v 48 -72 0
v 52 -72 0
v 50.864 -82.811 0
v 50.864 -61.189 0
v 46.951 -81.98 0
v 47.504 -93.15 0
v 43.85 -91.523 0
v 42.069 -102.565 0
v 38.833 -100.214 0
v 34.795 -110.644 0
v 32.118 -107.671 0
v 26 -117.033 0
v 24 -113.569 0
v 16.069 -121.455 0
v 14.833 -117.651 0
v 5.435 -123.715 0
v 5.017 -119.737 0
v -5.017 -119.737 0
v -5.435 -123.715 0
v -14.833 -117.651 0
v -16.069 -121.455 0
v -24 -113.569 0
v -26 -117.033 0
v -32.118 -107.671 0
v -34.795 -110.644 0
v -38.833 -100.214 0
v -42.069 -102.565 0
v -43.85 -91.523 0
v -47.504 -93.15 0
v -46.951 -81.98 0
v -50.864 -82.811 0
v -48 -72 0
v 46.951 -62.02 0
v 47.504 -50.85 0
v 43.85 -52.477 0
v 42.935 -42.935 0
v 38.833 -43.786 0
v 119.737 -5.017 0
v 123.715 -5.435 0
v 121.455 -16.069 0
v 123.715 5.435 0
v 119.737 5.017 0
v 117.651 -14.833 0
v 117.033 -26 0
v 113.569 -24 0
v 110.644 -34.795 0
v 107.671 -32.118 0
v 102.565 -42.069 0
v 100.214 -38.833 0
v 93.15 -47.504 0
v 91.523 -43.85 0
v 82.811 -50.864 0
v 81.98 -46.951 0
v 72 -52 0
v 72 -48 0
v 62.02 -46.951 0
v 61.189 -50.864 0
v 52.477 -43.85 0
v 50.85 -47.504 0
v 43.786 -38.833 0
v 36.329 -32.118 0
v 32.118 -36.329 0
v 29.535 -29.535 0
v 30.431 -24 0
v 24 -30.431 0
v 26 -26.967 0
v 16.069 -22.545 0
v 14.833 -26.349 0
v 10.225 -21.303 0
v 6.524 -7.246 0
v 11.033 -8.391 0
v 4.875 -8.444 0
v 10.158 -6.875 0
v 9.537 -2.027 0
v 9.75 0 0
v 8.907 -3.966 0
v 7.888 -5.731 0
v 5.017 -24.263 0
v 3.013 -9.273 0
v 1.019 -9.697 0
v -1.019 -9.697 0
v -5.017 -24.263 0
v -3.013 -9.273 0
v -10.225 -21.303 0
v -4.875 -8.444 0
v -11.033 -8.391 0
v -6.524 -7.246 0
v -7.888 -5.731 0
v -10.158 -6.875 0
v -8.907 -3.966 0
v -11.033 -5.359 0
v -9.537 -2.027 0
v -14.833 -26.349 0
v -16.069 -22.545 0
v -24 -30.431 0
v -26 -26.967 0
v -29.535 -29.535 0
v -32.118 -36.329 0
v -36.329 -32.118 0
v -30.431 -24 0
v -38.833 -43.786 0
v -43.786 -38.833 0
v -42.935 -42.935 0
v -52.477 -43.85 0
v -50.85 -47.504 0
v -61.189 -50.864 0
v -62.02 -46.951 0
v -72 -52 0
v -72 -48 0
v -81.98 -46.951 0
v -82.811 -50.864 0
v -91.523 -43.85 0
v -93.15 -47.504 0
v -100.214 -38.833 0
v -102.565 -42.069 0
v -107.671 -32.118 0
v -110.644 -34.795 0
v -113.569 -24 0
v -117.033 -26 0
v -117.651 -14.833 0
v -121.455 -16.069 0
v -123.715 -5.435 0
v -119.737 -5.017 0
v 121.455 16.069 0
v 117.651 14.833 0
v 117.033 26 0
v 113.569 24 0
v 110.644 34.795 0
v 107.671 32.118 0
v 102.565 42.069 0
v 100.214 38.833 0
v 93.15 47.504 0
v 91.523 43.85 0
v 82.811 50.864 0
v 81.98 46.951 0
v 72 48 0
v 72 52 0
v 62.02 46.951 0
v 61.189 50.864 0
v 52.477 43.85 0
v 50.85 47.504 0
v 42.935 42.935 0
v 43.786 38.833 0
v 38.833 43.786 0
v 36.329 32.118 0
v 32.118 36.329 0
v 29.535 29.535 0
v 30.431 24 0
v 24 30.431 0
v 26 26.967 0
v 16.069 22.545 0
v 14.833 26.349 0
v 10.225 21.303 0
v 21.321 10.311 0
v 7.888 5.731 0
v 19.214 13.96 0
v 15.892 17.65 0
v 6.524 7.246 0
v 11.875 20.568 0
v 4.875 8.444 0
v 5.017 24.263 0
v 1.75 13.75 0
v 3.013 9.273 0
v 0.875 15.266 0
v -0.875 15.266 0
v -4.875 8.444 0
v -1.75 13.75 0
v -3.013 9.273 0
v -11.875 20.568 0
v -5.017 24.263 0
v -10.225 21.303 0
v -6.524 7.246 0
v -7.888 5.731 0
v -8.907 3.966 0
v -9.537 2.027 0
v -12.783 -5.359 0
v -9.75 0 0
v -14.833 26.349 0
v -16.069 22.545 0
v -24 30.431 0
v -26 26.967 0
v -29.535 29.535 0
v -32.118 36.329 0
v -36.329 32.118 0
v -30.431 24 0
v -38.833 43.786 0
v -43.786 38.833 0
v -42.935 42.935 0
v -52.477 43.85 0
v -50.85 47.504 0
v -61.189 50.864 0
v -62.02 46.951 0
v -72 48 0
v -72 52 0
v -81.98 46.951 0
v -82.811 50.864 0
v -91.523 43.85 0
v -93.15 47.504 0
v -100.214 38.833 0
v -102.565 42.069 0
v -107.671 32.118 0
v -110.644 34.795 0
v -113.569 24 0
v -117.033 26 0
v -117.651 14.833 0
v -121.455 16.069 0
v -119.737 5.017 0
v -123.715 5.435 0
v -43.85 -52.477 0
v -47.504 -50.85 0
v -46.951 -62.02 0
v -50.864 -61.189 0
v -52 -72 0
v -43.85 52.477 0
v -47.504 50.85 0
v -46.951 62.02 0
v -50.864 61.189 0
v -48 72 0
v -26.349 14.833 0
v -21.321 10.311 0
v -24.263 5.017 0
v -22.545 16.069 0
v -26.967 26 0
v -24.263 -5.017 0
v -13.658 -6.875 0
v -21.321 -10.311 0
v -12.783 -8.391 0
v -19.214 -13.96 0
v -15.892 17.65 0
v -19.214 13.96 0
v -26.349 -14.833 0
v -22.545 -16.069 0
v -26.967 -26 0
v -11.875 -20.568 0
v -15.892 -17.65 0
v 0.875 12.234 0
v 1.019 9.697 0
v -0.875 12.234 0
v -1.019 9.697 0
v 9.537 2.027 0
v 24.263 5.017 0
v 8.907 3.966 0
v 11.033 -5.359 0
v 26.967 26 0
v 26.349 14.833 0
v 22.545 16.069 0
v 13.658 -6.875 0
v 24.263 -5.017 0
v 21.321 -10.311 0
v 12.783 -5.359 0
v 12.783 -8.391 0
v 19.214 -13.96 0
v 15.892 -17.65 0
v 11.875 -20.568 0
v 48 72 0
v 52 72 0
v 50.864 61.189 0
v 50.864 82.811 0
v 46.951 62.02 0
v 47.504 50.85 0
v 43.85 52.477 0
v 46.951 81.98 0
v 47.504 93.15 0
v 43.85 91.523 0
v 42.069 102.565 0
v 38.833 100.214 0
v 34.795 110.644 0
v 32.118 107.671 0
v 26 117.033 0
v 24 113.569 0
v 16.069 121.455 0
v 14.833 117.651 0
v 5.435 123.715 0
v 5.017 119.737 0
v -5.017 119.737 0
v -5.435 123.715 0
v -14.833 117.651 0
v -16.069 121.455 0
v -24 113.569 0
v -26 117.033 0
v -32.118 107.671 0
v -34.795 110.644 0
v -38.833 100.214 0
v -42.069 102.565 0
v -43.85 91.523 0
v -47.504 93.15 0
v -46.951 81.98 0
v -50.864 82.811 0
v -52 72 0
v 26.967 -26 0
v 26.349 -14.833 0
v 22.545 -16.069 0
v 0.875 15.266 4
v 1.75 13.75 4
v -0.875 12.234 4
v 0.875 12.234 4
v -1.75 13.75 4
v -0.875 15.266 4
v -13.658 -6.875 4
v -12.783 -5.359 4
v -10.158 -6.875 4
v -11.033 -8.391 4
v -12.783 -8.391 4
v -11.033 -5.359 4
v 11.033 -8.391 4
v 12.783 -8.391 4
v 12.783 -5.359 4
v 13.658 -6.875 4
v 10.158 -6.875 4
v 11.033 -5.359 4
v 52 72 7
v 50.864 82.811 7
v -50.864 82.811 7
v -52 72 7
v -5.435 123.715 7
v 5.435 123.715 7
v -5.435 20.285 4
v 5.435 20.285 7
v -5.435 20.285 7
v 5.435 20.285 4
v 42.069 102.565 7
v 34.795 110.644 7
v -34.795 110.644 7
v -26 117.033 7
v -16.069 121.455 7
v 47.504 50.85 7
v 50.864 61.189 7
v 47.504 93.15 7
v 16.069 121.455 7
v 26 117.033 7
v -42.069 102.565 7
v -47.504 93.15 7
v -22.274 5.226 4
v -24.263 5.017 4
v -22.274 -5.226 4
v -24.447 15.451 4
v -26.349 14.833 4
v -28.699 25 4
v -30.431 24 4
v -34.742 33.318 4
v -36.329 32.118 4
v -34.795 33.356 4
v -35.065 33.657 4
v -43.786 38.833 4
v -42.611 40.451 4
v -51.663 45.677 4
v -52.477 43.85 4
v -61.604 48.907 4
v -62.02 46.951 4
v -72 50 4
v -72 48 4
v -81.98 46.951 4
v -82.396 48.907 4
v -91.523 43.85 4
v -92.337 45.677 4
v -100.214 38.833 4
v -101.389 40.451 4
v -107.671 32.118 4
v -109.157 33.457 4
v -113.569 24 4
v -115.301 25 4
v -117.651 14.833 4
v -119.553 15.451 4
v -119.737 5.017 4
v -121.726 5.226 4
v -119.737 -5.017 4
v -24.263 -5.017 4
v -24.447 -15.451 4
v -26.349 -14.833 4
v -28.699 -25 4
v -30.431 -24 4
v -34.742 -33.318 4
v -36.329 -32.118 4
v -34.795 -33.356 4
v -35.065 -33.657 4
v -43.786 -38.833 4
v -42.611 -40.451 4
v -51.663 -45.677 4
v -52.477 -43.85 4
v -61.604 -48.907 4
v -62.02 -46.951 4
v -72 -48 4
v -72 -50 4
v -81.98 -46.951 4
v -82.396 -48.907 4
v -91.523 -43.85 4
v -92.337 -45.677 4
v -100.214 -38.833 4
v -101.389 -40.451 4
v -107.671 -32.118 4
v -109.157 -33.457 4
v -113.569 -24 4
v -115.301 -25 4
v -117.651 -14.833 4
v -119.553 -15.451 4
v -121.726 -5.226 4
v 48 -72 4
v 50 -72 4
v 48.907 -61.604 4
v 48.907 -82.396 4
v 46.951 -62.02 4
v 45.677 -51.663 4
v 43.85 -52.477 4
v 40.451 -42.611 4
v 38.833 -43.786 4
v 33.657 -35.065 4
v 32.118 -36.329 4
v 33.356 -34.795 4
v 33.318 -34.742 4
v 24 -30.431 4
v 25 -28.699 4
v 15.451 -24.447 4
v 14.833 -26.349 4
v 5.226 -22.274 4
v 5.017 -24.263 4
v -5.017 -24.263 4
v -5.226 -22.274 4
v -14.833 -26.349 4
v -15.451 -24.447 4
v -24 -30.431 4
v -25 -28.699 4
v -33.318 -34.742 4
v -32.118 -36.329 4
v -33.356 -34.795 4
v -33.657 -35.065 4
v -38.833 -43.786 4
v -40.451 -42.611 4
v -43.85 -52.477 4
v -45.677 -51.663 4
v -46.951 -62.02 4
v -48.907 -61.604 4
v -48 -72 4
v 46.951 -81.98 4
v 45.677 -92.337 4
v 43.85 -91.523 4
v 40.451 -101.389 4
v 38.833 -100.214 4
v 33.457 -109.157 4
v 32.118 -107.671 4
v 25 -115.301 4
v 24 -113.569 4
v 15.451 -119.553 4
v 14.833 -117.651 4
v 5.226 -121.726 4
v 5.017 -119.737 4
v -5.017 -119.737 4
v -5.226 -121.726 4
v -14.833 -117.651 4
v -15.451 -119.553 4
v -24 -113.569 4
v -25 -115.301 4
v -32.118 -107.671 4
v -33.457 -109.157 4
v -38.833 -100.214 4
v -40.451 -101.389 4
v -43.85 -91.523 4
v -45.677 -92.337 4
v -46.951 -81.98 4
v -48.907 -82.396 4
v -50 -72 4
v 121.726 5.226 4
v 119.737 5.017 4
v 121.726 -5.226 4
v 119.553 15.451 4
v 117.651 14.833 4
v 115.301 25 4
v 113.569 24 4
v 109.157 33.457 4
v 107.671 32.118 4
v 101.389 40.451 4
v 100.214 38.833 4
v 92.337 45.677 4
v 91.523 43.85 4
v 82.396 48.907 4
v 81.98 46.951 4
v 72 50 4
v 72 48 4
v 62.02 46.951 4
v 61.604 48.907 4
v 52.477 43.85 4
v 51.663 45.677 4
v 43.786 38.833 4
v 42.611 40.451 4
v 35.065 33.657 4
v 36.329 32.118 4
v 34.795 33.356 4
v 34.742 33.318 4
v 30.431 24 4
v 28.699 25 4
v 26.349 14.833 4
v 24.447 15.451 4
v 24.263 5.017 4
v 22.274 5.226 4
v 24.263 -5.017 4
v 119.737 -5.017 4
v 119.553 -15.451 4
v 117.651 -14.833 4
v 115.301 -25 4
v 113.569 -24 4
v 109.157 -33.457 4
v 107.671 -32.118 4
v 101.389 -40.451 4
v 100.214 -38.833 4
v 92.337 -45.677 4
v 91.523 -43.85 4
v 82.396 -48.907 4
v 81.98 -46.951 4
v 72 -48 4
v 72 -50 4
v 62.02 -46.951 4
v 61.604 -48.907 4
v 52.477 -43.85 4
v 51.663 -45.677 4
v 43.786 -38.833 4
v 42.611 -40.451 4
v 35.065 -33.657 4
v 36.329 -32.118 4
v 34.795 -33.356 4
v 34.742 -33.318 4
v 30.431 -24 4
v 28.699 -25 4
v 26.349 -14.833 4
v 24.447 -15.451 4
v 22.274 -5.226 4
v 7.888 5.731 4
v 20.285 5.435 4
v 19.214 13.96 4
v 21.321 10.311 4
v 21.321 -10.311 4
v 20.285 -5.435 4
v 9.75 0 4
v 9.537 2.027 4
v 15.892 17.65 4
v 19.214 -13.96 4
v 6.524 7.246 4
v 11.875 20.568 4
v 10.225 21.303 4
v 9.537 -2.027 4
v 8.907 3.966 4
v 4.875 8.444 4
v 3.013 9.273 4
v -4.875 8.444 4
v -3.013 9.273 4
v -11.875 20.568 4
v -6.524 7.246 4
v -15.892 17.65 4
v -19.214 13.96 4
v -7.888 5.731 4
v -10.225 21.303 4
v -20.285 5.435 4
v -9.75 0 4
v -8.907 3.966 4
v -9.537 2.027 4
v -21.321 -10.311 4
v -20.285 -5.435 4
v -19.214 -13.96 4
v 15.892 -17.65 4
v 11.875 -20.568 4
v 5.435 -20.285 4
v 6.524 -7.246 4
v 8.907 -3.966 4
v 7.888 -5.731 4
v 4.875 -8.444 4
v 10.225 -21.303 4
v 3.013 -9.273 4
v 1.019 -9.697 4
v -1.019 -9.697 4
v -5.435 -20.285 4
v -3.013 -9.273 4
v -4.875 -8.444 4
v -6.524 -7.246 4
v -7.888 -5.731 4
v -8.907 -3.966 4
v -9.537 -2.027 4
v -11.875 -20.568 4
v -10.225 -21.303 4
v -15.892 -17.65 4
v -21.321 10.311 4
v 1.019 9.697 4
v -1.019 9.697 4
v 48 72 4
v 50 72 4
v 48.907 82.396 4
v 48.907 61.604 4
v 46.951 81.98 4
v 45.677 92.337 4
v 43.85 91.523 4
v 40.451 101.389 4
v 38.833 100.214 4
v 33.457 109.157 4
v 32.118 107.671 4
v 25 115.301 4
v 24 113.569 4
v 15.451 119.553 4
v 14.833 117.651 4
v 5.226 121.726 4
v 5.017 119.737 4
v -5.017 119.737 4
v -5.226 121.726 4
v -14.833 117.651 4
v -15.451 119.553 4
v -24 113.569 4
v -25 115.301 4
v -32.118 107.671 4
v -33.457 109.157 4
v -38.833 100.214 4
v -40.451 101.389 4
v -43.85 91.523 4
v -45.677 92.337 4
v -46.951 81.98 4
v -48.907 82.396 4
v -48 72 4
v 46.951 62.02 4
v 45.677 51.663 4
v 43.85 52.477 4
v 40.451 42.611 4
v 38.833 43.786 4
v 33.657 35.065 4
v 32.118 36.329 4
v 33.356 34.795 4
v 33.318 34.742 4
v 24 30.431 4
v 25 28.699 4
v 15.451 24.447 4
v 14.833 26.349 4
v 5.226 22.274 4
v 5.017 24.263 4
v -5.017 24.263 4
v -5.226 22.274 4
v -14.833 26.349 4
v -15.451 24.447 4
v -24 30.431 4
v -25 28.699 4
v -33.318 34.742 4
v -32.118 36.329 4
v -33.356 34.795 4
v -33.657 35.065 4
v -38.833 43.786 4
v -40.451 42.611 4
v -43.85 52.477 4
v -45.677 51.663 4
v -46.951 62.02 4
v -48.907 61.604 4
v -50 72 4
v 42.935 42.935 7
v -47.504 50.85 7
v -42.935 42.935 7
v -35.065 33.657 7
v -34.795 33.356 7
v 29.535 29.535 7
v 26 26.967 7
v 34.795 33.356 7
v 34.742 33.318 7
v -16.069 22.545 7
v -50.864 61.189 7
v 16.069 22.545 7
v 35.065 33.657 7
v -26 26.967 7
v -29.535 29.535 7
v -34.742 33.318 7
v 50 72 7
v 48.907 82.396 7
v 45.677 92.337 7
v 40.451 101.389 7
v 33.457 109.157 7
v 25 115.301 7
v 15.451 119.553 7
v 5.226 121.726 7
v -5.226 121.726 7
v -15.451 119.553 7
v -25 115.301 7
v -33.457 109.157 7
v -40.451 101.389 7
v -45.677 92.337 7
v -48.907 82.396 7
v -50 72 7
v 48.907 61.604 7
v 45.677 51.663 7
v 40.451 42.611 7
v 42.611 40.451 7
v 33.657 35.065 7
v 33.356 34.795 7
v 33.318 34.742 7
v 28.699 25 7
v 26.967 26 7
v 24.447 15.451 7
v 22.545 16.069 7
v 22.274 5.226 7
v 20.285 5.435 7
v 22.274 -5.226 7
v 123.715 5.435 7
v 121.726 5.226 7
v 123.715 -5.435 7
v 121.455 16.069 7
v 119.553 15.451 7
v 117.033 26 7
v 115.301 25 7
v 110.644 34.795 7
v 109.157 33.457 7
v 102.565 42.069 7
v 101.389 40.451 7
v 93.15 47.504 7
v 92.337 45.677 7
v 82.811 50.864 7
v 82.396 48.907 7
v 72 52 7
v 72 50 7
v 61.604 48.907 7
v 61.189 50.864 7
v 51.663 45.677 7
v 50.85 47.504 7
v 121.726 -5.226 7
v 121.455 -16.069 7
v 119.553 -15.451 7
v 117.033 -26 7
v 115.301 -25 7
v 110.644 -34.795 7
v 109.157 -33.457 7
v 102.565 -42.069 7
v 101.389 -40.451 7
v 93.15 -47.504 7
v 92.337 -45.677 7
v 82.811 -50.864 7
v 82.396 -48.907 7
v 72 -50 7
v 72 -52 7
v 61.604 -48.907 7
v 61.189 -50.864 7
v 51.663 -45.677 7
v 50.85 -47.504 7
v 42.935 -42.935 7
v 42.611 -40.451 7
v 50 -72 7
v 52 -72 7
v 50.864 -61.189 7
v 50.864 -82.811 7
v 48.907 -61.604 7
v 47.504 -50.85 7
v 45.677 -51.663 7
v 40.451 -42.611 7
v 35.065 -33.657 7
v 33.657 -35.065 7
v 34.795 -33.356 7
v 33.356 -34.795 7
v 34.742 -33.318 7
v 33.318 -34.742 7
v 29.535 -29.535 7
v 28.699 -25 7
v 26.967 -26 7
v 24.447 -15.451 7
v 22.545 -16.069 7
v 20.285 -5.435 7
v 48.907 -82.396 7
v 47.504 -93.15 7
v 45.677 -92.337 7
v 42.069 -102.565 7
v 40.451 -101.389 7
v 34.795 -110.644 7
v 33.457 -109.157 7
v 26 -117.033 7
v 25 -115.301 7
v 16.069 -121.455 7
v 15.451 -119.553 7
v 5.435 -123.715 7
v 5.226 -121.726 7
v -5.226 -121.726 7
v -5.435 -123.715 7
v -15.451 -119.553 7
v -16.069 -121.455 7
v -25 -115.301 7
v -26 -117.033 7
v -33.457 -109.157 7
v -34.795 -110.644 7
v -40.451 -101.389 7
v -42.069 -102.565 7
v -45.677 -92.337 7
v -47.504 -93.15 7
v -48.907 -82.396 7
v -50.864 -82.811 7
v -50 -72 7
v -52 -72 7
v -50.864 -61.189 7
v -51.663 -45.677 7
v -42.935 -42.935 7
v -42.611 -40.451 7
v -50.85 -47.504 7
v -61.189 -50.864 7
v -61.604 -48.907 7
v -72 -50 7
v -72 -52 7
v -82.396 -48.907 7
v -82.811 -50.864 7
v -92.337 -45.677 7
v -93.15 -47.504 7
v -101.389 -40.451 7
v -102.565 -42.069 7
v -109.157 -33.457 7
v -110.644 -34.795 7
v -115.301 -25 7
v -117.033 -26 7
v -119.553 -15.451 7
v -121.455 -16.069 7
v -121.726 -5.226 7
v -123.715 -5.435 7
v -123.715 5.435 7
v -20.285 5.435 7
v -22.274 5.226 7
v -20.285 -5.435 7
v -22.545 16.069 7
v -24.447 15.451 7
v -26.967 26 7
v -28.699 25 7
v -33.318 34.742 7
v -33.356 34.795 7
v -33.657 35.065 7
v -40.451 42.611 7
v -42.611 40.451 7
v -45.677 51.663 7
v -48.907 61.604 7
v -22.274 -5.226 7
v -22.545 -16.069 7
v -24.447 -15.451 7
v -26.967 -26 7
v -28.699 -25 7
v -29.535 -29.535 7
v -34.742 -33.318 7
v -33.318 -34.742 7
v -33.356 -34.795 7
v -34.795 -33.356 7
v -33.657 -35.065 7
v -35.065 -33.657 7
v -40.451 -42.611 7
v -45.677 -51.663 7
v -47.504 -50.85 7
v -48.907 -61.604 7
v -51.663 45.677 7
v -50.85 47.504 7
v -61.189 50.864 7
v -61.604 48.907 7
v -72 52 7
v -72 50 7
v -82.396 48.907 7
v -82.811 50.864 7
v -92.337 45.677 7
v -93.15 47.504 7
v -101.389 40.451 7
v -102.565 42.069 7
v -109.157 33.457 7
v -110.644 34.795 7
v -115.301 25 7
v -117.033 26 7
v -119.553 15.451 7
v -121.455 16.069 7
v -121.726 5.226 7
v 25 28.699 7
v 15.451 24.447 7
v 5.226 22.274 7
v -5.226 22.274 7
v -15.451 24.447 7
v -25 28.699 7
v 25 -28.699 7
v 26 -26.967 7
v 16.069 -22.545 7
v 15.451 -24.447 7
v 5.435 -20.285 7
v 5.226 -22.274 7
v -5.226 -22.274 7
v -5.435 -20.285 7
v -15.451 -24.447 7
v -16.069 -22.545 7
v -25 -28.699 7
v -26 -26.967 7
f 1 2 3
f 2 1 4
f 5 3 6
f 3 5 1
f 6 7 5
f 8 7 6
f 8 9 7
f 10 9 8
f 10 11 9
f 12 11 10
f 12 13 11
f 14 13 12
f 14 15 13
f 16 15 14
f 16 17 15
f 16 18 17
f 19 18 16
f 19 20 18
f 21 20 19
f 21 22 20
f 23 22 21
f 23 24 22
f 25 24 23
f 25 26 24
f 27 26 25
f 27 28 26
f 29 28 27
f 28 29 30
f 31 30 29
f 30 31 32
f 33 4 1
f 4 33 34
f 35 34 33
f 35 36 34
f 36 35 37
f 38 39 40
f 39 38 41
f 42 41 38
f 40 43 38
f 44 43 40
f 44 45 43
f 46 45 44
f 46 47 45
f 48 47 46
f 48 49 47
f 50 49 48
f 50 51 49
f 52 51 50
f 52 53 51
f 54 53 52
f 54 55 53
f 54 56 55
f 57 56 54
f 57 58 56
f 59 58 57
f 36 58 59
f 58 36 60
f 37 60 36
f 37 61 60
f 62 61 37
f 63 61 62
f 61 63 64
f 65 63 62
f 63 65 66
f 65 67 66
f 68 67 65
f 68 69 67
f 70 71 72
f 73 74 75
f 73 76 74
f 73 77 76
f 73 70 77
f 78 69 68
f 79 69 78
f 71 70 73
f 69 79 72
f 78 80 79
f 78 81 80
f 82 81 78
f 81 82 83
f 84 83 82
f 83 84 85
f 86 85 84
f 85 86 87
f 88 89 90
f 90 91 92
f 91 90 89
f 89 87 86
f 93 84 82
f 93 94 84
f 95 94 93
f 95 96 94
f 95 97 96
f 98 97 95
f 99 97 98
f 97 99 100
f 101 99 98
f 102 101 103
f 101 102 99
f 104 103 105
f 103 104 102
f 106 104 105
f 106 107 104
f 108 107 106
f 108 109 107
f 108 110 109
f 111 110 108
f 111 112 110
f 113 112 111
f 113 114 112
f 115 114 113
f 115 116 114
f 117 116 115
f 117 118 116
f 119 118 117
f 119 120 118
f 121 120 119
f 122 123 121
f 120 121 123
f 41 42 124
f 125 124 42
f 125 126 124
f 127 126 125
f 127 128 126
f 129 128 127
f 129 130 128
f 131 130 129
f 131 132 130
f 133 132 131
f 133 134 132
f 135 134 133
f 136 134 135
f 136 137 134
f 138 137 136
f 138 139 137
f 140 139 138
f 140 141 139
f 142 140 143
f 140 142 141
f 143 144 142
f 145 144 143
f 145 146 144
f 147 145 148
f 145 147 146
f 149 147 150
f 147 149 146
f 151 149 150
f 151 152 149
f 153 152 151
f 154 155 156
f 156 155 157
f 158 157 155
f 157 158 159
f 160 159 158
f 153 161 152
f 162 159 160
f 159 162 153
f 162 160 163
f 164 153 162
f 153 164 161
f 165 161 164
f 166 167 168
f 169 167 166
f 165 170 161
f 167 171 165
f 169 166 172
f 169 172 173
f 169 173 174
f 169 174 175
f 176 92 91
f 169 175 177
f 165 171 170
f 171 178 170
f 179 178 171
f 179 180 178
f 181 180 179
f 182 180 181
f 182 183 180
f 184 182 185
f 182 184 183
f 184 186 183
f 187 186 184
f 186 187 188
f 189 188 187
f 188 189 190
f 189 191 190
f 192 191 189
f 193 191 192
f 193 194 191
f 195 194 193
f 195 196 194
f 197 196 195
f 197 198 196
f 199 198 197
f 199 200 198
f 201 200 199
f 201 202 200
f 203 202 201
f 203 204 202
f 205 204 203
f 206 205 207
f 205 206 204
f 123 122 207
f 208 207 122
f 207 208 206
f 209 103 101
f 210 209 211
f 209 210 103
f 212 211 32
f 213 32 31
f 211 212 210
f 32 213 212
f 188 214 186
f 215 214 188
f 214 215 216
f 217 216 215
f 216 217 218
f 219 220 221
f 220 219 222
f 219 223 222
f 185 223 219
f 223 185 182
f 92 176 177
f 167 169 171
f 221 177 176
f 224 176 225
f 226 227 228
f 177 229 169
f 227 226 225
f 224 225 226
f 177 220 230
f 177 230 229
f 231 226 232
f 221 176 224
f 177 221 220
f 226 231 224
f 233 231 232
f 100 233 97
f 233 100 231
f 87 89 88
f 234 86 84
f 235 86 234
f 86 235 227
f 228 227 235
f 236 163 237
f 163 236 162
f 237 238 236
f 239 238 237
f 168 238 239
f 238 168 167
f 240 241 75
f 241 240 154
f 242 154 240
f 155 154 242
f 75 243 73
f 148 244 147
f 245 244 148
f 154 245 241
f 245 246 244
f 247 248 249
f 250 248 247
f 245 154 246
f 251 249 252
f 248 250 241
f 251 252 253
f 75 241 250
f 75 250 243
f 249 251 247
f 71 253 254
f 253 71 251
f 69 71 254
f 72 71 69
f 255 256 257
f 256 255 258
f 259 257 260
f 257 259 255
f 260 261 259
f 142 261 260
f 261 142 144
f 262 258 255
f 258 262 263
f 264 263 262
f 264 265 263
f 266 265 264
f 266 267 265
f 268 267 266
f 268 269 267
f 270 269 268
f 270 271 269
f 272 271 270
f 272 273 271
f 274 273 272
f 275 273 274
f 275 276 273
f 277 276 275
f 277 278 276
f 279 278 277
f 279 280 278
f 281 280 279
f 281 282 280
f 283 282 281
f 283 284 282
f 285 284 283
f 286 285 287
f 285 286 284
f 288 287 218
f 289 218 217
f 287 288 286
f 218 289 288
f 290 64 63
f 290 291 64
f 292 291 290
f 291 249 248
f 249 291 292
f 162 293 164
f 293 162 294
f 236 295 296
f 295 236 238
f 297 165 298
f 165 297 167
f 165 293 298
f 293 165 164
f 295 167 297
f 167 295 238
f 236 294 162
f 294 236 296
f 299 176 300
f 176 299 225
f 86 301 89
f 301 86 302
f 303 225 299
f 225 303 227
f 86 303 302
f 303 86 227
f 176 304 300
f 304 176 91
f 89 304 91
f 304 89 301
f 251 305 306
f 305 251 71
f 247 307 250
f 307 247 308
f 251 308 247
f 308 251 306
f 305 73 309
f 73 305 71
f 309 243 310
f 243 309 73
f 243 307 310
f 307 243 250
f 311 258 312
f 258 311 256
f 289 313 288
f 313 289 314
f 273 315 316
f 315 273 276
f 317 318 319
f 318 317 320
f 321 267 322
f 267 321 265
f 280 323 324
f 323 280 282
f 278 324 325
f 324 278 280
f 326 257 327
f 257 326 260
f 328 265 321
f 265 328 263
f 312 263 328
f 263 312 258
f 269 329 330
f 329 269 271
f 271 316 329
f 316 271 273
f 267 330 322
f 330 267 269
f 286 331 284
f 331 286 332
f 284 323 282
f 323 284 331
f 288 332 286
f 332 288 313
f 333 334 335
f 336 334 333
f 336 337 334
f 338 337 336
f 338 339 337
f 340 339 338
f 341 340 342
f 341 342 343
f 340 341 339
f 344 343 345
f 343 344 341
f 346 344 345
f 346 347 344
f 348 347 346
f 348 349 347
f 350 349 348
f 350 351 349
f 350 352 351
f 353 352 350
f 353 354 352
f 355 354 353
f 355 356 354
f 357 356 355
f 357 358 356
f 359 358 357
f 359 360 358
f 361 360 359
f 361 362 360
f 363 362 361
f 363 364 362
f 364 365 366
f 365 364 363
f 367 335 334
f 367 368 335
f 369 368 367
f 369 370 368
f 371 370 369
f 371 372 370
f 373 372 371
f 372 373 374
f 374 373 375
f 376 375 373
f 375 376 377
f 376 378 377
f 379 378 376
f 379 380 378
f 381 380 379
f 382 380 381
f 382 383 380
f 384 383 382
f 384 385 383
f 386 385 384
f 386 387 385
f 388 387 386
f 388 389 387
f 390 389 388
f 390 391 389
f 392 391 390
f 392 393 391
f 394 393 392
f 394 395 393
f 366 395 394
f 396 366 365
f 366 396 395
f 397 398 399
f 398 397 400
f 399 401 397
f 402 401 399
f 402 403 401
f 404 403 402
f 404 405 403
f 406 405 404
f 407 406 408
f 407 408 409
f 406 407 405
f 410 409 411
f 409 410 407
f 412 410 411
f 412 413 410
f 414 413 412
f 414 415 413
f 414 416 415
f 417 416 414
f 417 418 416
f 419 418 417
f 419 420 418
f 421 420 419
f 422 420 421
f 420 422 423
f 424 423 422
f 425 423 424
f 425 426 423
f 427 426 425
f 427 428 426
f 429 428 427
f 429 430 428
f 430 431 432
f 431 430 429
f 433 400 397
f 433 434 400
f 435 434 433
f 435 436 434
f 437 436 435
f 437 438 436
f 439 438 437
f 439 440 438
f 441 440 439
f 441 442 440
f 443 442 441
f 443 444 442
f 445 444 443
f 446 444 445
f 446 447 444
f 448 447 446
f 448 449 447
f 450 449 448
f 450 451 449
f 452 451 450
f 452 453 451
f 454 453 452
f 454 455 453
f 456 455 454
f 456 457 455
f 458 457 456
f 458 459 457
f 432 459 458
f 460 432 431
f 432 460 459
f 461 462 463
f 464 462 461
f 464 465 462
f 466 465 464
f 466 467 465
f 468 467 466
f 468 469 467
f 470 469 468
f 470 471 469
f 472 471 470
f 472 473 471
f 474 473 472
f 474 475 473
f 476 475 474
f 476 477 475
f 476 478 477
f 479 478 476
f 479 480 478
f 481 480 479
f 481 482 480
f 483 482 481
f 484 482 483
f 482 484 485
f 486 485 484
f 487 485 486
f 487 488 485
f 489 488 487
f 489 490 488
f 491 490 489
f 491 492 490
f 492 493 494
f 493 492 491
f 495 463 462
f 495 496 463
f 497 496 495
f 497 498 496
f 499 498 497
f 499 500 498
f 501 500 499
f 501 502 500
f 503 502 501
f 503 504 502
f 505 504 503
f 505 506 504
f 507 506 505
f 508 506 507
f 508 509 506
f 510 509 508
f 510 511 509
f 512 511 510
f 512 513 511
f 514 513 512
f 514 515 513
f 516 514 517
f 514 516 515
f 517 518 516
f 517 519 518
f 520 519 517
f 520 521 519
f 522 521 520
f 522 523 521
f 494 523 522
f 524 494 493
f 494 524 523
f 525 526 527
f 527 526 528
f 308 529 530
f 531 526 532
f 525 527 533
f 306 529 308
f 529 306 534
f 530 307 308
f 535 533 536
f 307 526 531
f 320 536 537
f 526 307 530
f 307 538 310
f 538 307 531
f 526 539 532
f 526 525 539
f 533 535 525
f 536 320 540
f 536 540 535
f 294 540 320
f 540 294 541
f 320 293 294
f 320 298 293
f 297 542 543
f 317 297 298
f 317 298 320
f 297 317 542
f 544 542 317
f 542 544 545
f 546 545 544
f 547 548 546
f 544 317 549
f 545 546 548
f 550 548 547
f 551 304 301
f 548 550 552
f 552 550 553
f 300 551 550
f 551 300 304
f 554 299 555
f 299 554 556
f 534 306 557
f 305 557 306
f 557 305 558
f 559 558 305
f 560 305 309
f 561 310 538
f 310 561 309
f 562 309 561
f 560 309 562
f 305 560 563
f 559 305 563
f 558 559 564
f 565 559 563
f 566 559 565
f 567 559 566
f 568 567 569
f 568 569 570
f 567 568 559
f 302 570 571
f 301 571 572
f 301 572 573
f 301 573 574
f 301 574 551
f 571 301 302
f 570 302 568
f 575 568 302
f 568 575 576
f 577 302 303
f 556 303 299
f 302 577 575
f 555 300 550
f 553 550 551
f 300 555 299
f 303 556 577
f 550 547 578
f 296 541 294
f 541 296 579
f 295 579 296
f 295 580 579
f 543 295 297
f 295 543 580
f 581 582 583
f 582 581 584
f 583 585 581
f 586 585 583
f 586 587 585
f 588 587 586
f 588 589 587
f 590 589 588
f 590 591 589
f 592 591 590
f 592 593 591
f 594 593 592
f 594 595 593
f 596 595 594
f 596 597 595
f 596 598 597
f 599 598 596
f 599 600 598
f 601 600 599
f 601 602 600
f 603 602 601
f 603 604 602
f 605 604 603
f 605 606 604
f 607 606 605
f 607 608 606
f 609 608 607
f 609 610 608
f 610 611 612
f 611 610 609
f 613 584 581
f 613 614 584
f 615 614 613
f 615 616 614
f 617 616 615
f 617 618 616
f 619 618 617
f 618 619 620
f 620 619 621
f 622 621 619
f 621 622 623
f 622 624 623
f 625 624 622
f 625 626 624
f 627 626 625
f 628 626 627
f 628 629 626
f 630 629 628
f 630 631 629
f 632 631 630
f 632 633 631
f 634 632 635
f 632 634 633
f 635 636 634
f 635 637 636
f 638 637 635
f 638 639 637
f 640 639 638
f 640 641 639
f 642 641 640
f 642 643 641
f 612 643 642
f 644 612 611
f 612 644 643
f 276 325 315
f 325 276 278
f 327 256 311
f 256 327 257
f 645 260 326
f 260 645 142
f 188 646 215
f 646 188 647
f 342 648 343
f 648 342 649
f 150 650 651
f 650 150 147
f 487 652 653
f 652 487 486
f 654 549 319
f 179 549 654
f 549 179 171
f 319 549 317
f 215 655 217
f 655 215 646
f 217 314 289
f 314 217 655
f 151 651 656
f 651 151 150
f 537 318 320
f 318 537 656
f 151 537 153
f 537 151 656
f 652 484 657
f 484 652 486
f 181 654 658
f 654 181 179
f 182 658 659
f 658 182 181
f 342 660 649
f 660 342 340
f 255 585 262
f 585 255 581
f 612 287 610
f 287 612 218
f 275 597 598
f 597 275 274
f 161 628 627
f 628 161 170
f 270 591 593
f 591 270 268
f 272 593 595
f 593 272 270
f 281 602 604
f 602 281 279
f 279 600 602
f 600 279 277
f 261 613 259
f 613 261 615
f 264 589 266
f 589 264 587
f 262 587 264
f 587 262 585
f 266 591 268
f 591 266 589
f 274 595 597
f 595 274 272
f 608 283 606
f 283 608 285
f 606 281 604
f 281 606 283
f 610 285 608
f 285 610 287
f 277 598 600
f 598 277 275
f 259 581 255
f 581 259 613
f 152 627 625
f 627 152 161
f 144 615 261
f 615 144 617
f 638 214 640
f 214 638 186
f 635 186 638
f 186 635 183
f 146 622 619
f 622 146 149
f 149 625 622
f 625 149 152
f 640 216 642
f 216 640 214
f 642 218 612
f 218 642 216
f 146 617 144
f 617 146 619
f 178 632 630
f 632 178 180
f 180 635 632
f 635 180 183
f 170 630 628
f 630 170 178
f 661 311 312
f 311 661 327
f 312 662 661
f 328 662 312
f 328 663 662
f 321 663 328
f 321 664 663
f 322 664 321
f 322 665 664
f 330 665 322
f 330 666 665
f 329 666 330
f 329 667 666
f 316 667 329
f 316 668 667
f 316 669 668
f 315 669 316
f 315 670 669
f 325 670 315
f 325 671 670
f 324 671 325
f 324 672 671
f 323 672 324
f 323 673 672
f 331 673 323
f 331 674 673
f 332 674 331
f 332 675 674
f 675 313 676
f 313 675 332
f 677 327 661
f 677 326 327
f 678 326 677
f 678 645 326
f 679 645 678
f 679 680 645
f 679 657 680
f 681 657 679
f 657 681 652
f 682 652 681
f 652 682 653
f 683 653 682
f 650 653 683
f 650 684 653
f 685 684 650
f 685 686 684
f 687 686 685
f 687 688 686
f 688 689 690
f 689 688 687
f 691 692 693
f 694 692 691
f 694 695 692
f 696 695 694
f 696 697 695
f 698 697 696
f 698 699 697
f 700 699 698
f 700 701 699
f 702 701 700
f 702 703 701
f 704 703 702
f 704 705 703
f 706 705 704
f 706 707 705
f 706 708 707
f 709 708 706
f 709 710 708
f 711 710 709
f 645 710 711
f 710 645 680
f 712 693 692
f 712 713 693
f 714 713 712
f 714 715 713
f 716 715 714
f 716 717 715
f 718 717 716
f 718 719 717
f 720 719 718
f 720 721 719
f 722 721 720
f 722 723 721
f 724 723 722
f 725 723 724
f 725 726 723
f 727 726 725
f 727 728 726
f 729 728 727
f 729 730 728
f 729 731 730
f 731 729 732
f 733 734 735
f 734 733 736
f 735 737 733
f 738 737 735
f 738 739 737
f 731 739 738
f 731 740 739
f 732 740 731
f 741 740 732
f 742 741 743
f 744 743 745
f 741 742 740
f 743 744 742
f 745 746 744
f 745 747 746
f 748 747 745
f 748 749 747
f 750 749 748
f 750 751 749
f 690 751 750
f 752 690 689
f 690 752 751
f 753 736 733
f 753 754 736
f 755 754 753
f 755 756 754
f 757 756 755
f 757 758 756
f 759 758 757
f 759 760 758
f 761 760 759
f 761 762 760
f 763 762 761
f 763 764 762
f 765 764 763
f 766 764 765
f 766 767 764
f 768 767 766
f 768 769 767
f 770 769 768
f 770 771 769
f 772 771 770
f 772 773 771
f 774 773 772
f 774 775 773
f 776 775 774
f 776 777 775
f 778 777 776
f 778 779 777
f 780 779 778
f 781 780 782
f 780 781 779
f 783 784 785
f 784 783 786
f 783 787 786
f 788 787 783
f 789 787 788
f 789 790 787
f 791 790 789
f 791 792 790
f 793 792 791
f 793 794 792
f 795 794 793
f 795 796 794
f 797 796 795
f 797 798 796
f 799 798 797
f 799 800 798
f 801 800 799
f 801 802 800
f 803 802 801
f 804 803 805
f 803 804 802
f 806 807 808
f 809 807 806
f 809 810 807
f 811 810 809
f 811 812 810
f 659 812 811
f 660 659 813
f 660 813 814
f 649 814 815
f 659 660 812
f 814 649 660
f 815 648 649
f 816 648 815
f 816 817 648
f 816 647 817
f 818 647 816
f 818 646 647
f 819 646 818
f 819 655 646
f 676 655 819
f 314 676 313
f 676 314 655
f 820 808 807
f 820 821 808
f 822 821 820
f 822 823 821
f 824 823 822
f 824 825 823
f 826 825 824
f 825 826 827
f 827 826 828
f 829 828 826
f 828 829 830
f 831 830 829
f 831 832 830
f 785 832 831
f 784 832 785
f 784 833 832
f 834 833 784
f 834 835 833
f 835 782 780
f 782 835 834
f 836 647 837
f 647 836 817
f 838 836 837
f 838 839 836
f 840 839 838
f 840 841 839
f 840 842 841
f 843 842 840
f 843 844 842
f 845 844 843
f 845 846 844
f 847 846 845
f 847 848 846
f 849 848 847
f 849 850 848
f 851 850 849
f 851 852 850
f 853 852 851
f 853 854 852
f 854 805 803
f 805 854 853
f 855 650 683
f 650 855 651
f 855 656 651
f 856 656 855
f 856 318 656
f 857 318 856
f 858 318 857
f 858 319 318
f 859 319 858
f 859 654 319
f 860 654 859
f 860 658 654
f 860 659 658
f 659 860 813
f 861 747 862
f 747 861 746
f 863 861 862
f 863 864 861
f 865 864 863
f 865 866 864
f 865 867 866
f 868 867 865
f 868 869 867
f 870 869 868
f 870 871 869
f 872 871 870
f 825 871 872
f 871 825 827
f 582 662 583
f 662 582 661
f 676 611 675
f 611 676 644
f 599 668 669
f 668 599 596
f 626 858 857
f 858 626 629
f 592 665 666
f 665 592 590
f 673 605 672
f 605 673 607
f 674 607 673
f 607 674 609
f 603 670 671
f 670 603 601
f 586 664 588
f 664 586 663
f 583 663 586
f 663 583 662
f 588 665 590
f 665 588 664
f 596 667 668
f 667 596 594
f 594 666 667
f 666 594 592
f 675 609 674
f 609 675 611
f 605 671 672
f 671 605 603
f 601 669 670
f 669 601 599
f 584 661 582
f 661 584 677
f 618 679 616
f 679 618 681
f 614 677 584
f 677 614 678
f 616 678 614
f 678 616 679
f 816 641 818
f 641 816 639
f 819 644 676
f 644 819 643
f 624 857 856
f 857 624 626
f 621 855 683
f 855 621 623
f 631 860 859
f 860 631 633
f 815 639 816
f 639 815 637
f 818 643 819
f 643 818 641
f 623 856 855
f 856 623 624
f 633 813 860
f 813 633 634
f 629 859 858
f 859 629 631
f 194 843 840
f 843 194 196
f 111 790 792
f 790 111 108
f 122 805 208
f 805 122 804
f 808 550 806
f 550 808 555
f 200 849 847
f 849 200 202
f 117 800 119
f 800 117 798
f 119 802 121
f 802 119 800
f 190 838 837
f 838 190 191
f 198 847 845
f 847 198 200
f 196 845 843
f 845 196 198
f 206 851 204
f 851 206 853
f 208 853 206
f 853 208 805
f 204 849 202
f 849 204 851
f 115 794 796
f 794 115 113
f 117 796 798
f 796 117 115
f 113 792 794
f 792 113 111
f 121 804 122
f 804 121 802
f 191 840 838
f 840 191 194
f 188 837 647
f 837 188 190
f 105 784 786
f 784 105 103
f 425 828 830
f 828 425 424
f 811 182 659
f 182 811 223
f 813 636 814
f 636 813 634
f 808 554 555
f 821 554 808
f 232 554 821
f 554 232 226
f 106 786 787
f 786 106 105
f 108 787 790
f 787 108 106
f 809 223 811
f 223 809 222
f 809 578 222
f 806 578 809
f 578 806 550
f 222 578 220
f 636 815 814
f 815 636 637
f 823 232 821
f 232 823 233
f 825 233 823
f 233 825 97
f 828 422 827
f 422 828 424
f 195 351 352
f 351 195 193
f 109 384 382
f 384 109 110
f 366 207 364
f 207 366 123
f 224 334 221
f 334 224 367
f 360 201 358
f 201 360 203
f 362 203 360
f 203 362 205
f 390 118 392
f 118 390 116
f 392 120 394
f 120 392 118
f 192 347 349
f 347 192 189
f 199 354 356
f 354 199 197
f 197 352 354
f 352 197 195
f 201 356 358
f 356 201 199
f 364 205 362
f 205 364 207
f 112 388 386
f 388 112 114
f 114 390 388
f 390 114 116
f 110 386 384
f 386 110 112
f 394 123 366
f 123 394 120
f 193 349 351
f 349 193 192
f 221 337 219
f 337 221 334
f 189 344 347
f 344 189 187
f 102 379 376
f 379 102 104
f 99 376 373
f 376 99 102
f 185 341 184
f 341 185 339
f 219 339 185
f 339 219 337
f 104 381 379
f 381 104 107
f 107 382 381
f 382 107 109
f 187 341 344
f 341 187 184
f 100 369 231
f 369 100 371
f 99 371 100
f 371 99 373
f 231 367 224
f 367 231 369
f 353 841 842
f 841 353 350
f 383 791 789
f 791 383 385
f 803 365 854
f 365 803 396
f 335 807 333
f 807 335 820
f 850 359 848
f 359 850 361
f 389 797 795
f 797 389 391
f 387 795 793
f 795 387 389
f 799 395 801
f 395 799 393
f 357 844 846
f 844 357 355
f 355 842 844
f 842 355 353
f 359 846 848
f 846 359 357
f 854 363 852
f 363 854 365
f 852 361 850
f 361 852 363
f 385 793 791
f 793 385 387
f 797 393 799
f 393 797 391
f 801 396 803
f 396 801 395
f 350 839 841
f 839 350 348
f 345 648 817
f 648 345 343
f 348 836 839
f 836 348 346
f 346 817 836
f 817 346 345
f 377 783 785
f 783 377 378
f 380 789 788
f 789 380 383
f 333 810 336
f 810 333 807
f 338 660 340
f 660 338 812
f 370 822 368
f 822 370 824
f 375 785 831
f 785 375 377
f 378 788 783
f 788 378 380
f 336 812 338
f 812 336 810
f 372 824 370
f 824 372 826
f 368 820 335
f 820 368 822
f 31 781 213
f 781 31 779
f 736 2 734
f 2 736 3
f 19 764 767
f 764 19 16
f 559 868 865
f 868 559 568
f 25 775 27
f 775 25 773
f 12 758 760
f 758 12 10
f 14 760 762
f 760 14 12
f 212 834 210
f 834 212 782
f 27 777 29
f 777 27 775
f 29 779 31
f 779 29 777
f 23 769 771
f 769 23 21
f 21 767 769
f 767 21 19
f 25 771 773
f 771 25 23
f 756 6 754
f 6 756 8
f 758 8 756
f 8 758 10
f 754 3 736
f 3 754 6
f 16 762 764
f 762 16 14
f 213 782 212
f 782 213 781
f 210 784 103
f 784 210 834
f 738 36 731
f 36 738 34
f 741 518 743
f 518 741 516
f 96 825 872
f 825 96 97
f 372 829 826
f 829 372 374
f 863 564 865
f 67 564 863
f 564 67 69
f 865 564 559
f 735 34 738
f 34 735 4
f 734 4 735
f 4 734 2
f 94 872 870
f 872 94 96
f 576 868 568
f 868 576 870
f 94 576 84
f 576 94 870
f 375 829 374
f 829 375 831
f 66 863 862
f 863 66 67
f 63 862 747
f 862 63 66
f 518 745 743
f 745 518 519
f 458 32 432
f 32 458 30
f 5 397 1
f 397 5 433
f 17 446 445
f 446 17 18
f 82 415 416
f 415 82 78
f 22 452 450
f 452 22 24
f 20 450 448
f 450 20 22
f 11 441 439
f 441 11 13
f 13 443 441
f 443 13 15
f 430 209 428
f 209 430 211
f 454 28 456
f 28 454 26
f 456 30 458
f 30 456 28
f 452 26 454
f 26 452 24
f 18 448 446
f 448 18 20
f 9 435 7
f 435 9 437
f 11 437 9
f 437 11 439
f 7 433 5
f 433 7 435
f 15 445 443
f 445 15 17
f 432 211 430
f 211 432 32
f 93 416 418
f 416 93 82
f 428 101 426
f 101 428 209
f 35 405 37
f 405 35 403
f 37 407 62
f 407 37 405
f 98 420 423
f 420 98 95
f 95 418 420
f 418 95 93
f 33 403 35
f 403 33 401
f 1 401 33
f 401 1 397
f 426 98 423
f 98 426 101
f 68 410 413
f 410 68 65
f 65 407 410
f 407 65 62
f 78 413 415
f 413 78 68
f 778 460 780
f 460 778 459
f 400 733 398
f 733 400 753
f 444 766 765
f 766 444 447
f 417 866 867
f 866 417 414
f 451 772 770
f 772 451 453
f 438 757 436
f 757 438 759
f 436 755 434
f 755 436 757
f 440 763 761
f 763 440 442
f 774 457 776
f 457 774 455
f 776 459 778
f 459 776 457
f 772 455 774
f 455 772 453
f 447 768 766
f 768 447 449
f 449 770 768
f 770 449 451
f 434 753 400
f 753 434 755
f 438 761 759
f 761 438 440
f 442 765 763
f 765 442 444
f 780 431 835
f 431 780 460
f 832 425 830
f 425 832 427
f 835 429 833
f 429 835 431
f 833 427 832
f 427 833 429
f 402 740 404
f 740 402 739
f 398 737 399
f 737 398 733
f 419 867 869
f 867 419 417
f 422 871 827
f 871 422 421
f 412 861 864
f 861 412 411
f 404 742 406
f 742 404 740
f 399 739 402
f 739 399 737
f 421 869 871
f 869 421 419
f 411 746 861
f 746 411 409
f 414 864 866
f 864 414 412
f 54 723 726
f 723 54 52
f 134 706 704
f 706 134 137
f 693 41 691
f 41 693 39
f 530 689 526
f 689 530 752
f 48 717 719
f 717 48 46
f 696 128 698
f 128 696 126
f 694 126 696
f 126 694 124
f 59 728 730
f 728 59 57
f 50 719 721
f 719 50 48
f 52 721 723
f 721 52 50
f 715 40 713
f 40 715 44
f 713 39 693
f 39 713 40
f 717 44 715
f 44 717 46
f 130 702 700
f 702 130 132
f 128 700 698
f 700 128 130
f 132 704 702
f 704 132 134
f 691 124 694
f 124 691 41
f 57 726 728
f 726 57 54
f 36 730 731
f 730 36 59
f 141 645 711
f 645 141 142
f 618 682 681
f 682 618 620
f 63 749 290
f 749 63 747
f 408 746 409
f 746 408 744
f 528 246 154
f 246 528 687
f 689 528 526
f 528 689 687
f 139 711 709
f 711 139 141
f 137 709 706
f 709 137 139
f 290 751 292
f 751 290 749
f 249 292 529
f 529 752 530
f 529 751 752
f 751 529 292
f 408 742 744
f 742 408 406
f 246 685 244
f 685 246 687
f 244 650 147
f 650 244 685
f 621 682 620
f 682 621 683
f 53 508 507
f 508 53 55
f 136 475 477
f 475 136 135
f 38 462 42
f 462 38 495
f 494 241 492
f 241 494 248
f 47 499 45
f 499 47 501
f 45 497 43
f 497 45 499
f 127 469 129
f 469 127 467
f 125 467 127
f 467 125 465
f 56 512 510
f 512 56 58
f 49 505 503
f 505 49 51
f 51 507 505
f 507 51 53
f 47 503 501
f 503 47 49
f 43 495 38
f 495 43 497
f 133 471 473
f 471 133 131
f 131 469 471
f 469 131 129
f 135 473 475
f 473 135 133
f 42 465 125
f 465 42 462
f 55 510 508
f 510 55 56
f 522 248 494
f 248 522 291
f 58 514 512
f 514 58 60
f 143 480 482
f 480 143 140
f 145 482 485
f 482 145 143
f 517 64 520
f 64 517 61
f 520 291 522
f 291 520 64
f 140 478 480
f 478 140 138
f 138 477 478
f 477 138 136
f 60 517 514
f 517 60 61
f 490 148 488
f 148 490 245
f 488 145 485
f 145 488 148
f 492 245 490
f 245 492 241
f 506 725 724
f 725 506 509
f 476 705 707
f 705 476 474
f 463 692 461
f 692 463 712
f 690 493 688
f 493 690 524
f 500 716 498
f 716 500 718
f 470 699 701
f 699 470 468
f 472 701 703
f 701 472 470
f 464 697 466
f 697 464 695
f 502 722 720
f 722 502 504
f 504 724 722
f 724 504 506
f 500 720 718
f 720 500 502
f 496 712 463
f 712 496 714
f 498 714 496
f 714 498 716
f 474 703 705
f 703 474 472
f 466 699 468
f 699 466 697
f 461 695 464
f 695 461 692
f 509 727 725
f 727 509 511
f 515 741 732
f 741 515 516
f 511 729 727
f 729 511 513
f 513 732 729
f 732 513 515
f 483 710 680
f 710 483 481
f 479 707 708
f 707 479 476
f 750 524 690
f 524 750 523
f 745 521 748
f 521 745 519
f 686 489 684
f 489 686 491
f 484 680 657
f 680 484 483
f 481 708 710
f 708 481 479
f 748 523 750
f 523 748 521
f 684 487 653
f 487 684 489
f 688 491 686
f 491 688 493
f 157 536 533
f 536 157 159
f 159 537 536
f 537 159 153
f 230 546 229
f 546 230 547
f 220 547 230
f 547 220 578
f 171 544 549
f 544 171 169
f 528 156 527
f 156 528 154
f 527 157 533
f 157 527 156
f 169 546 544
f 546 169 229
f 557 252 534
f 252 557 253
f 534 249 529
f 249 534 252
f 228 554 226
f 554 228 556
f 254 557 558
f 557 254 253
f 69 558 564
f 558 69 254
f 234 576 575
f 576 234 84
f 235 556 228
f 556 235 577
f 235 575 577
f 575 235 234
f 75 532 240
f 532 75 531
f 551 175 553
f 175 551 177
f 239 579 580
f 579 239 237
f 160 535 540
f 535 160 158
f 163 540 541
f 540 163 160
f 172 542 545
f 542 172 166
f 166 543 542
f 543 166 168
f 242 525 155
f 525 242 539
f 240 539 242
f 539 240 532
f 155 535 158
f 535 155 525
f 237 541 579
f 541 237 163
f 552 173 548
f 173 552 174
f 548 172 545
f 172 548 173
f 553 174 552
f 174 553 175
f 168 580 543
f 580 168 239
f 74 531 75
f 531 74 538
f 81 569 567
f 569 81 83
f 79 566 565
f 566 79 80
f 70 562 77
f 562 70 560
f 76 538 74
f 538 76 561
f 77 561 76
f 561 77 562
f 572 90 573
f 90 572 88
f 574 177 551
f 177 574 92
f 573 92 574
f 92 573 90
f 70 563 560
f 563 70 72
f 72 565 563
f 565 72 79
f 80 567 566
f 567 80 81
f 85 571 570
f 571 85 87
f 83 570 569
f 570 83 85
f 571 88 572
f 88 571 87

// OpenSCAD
union() {
	difference() {
		cylinder(d = 47.5000000000, h = 4);
		translate(v = [0, 0, -2.0000000000]) {
			cylinder(d = 19.5000000000, h = 8);
		}
		union() {
			translate(v = [0, 13.7500000000, 0]) {
				cylinder(d = 3.5000000000, h = 10);
			}
			rotate(a = [0, 0, 120]) {
				translate(v = [0, 13.7500000000, 0]) {
					cylinder(d = 3.5000000000, h = 10);
				}
			}
			rotate(a = [0, 0, 240]) {
				translate(v = [0, 13.7500000000, 0]) {
					cylinder(d = 3.5000000000, h = 10);
				}
			}
		}
	}
	translate(v = [0, 72.0000000000, 0]) {
		union() {
			difference() {
				cylinder(d = 104, h = 4);
				translate(v = [0, 0, -2.0000000000]) {
					cylinder(d = 96, h = 8);
				}
			}
			translate(v = [0, 0, 4]) {
				difference() {
					cylinder(d = 104, h = 3);
					translate(v = [0, 0, -1.5000000000]) {
						cylinder(d = 100, h = 6);
					}
				}
			}
		}
	}
	rotate(a = [0, 0, 90]) {
		translate(v = [0, 72.0000000000, 0]) {
			union() {
				difference() {
					cylinder(d = 104, h = 4);
					translate(v = [0, 0, -2.0000000000]) {
						cylinder(d = 96, h = 8);
					}
				}
				translate(v = [0, 0, 4]) {
					difference() {
						cylinder(d = 104, h = 3);
						translate(v = [0, 0, -1.5000000000]) {
							cylinder(d = 100, h = 6);
						}
					}
				}
			}
		}
	}
	rotate(a = [0, 0, 180]) {
		translate(v = [0, 72.0000000000, 0]) {
			union() {
				difference() {
					cylinder(d = 104, h = 4);
					translate(v = [0, 0, -2.0000000000]) {
						cylinder(d = 96, h = 8);
					}
				}
				translate(v = [0, 0, 4]) {
					difference() {
						cylinder(d = 104, h = 3);
						translate(v = [0, 0, -1.5000000000]) {
							cylinder(d = 100, h = 6);
						}
					}
				}
			}
		}
	}
	rotate(a = [0, 0, 270]) {
		translate(v = [0, 72.0000000000, 0]) {
			union() {
				difference() {
					cylinder(d = 104, h = 4);
					translate(v = [0, 0, -2.0000000000]) {
						cylinder(d = 96, h = 8);
					}
				}
				translate(v = [0, 0, 4]) {
					difference() {
						cylinder(d = 104, h = 3);
						translate(v = [0, 0, -1.5000000000]) {
							cylinder(d = 100, h = 6);
						}
					}
				}
			}
		}
	}
}
